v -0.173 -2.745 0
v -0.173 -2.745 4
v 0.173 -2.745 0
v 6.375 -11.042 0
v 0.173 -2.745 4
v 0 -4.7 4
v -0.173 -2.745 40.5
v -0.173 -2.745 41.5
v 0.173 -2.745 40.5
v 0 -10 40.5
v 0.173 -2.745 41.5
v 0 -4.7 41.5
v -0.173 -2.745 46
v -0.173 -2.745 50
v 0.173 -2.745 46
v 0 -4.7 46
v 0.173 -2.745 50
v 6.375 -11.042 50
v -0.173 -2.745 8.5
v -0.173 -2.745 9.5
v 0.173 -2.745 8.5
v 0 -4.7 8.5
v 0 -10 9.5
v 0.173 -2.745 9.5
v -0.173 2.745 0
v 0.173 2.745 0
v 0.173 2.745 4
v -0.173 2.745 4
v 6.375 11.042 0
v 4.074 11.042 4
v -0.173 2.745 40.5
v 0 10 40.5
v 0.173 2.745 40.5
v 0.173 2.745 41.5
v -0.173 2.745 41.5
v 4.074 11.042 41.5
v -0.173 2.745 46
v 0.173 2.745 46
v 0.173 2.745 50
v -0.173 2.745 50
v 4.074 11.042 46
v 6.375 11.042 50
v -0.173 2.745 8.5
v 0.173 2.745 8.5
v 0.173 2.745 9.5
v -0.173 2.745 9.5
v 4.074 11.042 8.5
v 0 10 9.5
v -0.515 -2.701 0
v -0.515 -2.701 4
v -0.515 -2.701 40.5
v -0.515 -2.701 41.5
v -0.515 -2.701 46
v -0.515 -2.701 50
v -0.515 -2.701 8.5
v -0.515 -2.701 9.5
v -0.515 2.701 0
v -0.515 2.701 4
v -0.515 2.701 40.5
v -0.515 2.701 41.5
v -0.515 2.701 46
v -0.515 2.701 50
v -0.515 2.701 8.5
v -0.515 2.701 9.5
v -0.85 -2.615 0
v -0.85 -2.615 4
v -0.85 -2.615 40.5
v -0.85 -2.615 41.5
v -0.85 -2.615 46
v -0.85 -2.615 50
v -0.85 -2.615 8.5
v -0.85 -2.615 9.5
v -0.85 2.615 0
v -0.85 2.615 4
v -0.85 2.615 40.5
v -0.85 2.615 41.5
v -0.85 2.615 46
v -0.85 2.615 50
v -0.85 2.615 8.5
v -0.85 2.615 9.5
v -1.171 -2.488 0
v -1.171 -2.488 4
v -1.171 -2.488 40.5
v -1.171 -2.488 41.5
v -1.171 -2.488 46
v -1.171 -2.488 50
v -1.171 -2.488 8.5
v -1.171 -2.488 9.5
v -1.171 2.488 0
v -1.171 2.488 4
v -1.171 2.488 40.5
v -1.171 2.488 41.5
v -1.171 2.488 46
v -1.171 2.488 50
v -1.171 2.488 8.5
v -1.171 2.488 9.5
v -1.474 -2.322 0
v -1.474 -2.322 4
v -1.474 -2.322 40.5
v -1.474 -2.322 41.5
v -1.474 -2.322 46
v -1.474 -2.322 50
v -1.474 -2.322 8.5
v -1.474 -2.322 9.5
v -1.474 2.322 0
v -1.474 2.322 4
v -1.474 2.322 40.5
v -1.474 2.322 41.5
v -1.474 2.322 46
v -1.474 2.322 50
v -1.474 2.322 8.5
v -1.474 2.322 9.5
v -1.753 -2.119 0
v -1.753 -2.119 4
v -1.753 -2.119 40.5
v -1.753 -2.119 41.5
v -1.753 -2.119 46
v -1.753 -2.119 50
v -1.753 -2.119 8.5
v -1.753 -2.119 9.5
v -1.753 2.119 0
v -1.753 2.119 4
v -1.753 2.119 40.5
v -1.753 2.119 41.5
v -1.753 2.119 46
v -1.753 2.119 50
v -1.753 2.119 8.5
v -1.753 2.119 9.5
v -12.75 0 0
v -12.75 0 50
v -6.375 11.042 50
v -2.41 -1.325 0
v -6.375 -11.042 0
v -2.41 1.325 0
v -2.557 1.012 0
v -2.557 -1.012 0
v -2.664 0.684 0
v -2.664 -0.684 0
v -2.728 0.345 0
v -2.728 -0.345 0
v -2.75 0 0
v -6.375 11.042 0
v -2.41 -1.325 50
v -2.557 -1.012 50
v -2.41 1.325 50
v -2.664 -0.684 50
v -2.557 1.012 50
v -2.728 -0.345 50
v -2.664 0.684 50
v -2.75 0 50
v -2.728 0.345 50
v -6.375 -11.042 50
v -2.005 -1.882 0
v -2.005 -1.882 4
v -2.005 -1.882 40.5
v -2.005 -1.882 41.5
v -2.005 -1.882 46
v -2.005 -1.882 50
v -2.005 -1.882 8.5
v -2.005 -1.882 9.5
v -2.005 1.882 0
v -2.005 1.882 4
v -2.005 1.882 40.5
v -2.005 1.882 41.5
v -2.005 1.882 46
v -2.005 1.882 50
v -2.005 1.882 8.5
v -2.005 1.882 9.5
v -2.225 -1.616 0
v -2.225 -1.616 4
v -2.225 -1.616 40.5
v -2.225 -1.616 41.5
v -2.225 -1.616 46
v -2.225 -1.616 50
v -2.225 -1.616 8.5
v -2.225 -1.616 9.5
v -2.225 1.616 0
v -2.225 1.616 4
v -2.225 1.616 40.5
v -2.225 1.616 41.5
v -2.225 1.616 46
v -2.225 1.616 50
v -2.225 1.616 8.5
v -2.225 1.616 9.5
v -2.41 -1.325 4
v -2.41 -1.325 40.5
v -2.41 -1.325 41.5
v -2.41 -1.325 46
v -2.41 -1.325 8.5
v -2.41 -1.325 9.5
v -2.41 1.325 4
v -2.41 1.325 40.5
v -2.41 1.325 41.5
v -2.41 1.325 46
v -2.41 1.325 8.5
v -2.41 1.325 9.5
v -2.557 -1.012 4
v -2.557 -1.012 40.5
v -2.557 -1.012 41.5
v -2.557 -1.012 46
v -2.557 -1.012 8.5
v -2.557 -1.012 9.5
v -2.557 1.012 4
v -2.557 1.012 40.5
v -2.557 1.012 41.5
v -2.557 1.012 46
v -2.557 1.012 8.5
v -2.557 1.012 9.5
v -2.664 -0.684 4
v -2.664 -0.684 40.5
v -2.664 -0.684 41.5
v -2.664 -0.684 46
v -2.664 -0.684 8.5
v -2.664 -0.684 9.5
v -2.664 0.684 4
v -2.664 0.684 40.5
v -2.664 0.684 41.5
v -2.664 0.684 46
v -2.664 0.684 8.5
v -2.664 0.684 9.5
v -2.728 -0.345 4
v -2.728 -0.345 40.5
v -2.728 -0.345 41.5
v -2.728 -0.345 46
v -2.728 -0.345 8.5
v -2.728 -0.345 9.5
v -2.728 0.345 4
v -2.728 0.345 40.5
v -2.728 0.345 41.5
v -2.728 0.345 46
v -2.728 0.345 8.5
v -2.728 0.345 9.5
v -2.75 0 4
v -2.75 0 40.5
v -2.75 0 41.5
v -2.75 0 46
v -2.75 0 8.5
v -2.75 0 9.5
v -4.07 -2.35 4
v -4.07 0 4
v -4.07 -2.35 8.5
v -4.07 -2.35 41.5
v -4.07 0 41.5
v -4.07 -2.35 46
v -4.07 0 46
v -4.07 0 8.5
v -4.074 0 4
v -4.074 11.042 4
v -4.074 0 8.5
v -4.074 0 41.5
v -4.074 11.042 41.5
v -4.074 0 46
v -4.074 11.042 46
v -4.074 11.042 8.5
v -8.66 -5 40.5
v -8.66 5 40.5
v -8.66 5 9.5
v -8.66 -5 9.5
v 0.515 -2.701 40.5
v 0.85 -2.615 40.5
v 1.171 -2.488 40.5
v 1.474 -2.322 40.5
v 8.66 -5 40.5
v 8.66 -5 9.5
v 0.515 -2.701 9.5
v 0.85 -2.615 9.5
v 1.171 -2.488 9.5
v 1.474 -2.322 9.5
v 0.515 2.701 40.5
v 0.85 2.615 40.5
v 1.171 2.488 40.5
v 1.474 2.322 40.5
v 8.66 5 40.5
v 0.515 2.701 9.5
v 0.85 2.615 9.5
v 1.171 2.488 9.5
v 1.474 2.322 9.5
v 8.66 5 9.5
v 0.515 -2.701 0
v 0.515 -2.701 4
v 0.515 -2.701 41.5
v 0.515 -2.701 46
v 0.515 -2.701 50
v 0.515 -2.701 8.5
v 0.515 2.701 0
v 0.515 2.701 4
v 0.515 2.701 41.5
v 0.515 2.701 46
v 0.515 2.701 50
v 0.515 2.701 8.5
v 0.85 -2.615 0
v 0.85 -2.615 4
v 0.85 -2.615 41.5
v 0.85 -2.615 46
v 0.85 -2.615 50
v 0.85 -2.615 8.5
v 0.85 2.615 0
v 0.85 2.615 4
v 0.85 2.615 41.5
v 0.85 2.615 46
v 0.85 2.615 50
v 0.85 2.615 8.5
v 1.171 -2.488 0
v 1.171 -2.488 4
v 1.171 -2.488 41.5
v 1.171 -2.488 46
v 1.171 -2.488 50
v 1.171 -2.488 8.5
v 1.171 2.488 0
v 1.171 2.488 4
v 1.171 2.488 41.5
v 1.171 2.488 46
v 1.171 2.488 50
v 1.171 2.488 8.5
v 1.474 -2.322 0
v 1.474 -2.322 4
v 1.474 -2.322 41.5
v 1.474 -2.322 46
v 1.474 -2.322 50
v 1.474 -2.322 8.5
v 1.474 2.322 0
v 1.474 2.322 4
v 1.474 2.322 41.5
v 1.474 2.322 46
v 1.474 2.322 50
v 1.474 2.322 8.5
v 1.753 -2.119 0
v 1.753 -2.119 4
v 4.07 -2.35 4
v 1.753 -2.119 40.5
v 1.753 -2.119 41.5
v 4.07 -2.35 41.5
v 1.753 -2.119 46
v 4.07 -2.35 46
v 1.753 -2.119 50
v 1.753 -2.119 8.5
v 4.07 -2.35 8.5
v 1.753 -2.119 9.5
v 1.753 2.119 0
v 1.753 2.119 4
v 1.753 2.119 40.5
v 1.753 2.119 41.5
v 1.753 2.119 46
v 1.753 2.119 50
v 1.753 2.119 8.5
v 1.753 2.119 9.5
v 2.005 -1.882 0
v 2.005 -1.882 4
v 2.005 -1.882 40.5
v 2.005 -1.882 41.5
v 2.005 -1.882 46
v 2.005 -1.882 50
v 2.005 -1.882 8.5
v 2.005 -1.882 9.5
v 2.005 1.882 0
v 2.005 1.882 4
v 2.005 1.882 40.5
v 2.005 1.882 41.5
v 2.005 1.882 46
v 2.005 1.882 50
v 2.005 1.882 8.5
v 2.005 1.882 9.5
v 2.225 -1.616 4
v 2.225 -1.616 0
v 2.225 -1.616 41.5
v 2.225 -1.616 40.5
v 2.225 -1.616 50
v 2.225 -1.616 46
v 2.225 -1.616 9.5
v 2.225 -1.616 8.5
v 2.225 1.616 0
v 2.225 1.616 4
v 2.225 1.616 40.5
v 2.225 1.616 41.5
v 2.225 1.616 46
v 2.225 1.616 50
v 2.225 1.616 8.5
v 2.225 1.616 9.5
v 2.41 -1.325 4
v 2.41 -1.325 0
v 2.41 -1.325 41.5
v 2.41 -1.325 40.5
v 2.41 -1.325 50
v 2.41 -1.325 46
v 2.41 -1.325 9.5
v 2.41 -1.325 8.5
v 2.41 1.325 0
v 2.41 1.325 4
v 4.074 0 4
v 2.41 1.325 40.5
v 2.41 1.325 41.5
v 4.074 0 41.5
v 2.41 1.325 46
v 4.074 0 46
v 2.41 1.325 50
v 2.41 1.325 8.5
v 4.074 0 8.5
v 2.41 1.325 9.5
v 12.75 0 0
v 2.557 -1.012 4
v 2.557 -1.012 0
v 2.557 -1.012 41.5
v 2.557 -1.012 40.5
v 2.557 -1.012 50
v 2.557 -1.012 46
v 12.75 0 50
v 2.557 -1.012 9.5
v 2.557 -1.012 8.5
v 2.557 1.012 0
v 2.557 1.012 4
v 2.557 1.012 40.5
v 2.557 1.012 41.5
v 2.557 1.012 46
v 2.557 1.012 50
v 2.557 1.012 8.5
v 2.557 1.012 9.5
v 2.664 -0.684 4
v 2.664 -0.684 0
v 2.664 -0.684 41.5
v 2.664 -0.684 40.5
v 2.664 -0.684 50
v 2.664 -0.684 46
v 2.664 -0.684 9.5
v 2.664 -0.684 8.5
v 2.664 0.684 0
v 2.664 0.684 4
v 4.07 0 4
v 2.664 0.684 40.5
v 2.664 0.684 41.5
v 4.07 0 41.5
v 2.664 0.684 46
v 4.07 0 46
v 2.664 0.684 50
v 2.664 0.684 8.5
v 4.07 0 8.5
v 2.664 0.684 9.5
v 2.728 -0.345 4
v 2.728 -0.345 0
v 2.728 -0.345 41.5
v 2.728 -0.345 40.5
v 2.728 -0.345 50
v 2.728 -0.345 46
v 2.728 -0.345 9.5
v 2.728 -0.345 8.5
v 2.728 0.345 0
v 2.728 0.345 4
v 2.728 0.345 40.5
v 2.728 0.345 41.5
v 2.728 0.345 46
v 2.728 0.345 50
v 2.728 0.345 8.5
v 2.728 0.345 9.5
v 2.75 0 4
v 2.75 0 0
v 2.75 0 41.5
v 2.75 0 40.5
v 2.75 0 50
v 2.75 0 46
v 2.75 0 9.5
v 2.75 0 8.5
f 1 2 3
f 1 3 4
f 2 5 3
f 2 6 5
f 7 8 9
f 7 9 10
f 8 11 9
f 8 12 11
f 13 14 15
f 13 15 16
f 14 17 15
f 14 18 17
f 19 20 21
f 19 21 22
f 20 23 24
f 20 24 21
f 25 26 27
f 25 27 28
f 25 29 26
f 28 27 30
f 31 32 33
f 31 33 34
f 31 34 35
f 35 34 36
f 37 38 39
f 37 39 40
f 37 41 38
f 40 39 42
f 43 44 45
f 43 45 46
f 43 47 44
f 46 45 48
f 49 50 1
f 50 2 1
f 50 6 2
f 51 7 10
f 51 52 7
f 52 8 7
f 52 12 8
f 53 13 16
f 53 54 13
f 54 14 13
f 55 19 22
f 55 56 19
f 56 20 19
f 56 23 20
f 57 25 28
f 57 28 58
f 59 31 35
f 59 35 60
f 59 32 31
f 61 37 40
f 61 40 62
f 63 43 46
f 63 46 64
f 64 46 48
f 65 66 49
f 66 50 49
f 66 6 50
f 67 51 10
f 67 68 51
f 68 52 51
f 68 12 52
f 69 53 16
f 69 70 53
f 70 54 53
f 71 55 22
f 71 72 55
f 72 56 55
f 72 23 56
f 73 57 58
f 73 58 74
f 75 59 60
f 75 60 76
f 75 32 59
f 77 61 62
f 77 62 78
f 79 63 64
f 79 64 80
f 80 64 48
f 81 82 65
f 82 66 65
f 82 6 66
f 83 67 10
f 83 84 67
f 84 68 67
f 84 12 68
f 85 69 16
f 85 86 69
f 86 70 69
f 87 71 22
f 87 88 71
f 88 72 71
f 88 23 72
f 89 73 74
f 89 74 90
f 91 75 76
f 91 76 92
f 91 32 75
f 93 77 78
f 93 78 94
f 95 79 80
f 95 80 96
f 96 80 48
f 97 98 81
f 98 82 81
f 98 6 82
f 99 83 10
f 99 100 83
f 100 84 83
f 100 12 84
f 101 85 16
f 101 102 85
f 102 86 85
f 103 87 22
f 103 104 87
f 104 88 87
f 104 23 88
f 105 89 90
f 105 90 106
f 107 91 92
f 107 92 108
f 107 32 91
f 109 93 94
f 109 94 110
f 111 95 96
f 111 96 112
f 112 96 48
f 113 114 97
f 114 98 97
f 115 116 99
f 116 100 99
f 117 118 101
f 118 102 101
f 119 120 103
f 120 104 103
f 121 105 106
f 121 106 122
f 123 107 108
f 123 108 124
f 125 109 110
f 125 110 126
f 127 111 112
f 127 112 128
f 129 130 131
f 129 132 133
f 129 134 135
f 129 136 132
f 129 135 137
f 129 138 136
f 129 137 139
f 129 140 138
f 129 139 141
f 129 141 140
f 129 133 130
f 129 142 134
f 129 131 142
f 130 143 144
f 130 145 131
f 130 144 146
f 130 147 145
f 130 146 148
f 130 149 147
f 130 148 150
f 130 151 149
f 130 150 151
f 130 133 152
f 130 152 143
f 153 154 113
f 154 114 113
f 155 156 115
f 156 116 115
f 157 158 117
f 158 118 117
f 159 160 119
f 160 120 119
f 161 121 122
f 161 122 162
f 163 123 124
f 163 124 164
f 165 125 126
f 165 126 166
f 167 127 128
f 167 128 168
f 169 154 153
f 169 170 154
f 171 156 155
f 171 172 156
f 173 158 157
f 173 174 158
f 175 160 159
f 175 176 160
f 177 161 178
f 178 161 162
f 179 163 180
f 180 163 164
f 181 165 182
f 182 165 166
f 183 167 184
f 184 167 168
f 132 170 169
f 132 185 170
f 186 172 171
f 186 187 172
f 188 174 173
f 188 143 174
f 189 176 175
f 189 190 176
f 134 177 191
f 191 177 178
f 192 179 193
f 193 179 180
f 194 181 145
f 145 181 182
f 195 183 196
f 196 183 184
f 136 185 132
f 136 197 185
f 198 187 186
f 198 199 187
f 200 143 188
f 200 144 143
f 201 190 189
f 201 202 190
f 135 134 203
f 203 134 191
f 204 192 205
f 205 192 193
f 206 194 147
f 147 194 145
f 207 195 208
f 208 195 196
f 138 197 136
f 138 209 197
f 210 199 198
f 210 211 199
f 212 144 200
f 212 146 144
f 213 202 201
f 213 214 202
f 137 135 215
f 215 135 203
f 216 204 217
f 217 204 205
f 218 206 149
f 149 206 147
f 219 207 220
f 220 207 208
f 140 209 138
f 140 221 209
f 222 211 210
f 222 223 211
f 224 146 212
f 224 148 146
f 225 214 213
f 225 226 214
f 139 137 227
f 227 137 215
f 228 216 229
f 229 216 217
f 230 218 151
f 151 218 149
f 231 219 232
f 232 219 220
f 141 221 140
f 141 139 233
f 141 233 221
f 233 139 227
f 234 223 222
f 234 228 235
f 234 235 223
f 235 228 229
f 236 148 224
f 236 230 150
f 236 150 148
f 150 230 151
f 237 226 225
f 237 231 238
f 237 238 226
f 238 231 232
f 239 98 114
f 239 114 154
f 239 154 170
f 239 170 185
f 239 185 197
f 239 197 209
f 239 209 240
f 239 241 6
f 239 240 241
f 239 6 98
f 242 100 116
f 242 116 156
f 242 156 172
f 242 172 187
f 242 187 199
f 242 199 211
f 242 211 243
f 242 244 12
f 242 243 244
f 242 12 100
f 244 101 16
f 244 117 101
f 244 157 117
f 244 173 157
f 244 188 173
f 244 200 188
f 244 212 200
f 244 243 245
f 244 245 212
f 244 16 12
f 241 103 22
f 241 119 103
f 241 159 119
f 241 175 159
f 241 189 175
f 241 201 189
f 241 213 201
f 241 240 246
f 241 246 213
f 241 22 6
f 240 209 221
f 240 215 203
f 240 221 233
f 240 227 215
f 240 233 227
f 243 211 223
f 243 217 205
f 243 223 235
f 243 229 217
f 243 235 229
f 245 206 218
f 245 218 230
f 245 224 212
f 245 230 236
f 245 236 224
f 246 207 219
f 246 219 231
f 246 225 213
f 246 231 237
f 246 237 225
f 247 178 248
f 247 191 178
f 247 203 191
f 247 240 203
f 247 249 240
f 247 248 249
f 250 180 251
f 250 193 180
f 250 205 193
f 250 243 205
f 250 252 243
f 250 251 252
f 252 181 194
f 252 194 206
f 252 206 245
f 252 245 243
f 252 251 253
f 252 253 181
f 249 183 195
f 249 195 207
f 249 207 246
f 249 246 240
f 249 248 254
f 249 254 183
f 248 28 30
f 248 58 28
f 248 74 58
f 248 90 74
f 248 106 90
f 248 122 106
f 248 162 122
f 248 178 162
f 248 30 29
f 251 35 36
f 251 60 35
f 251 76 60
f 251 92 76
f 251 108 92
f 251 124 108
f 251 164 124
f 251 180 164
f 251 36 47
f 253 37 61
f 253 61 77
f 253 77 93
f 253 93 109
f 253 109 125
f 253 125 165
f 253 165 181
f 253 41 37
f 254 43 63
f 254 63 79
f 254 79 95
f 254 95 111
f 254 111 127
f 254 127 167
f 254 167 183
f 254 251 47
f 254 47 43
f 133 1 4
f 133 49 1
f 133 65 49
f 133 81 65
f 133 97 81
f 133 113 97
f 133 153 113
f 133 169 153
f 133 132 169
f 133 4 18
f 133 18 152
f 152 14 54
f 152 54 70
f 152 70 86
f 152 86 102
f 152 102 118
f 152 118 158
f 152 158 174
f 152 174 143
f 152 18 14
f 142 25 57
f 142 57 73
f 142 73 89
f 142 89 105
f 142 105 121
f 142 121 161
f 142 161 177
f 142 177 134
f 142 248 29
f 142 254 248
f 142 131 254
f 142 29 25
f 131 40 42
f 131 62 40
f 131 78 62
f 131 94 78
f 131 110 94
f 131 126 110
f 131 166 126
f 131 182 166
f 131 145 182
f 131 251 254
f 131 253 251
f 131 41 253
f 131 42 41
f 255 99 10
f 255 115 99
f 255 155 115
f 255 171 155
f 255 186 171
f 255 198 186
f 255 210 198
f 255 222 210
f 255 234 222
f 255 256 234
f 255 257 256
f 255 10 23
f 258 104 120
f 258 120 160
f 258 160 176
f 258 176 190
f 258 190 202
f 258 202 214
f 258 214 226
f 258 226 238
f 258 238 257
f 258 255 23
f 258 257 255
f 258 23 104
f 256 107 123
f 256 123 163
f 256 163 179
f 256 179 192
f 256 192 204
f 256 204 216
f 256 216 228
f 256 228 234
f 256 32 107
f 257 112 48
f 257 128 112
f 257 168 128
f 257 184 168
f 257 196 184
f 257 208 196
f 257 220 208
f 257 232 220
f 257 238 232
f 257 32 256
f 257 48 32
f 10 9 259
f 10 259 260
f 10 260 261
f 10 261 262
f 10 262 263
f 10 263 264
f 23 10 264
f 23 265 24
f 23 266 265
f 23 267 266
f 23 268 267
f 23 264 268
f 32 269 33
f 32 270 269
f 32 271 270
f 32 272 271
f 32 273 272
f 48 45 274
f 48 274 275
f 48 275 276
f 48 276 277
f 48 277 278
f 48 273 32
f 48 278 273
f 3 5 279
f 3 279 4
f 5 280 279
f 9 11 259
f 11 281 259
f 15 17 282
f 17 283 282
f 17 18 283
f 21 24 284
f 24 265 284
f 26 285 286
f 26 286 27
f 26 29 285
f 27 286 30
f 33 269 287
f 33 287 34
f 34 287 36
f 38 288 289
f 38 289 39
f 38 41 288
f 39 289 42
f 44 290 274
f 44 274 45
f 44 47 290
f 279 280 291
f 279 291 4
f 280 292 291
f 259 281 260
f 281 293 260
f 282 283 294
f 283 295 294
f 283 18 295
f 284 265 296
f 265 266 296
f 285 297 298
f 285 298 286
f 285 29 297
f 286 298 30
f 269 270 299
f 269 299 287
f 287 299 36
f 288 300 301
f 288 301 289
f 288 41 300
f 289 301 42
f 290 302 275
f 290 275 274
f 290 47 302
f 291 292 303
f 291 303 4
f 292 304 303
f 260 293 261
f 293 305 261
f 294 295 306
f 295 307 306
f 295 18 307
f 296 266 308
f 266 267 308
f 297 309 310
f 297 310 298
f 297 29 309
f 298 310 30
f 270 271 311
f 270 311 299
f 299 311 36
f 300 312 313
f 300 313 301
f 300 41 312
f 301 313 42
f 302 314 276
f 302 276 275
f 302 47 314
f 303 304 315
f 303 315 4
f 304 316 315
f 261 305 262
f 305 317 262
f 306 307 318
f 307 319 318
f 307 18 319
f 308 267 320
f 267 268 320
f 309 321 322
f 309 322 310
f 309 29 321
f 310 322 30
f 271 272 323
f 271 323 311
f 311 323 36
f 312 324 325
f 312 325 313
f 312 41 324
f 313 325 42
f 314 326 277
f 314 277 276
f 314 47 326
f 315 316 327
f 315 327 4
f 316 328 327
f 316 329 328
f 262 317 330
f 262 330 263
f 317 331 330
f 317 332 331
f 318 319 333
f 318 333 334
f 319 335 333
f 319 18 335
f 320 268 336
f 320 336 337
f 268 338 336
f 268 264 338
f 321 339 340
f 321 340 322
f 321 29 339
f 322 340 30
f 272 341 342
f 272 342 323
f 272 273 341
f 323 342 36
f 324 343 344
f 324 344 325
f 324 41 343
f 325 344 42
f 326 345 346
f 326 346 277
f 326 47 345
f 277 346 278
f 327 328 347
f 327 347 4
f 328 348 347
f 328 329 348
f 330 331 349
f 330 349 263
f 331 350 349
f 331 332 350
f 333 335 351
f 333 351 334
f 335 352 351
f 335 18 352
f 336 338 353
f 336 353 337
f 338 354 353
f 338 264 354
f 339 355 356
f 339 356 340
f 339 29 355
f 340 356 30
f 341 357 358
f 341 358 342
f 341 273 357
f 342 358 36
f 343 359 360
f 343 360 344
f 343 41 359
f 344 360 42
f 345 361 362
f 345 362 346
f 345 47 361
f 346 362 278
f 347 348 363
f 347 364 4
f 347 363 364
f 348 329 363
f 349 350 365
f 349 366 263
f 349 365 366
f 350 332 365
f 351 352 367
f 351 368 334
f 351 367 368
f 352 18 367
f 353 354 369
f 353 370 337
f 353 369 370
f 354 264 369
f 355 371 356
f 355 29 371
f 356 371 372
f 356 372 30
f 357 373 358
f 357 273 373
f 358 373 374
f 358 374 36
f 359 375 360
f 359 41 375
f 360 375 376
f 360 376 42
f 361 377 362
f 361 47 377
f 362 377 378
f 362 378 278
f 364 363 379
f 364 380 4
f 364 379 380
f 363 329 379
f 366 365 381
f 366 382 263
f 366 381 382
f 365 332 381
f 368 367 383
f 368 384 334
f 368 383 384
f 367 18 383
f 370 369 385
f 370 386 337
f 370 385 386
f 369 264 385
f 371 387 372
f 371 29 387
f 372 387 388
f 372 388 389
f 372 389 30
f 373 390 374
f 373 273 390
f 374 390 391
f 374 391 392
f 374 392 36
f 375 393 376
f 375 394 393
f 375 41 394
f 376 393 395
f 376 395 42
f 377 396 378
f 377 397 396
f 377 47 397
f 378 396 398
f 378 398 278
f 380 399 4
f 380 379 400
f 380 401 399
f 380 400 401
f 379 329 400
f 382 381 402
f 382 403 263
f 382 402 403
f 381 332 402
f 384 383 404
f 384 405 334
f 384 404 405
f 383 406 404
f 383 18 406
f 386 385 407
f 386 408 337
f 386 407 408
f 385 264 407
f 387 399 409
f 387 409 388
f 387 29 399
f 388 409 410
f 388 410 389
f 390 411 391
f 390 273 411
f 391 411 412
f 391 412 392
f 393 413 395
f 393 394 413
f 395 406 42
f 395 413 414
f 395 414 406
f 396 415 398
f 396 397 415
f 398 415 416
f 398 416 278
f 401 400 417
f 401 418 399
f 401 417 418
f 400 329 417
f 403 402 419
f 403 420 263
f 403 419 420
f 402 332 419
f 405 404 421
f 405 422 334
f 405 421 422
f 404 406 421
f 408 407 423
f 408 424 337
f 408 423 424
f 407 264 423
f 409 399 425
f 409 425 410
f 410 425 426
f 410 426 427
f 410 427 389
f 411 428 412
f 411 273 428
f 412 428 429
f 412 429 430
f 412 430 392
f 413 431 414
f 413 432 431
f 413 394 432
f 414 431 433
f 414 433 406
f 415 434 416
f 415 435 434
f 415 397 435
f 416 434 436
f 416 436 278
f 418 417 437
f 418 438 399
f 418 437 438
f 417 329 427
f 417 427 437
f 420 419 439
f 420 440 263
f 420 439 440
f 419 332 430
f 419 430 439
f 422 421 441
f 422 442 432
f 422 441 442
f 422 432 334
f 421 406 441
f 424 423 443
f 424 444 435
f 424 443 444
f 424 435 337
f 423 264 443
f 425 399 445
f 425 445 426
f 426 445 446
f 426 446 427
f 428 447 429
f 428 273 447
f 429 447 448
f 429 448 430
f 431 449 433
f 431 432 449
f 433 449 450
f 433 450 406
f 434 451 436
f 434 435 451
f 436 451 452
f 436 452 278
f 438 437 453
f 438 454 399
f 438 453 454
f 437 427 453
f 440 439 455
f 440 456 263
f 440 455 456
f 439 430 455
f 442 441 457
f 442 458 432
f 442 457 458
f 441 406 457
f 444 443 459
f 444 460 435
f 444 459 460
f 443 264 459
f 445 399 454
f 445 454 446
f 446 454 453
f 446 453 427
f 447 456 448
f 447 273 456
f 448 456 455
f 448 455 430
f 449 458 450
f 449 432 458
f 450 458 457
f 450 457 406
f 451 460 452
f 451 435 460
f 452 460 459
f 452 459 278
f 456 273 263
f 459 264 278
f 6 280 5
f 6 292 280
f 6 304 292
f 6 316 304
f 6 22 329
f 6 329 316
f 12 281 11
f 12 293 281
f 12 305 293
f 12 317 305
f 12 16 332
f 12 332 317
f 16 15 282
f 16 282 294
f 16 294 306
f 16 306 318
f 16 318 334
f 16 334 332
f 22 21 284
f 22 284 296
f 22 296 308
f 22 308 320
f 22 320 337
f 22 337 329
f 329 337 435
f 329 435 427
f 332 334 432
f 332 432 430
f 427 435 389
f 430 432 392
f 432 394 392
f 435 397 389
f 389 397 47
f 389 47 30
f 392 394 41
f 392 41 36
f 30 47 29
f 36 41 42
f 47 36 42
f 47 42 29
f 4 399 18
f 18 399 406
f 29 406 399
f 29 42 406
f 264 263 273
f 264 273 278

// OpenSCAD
// file: ../parameters.scad
maximum_printable_size = 150;

layer_thickness = 0.3;
global_clearance = 0.5;

platform_base_diameter = 400; // Průměr ukotvení válců spodní platformy
platform_base_thickness = 20;
platform_cylinder_medium_length = 250;  // délka pneumatického válce s pístem vysunutým do poloviny rozsahu
platform_base_cylinder_spacing = 38;    //rozestupy spodního a horního ukotvení válců.
platform_top_cylinder_spacing = 30;
platform_top_diameter = 150;   // Průměr horní základny (vdálenost od středu základny do středu kulového kloubu ke kterému je uchycen pneumatický válec)


// screw length step - minimum difference in length between two types of screws
basic_screw_length = 5;


//Screw diameter and nut for M10 [mm]
M10_screw_diameter = 10.4;
M10_head_height = 10;
M10_head_diameter = 16+0.5;
M10_nut_height = 10.5;
M10_nut_diameter = 25.5;
M10_nut_pocket = 22.3;

//Screw diameter for M8 [mm]
M8_screw_diameter = 8.6;
M8_head_height = 8;
M8_head_diameter = 13.5;
M8_nut_height = 7.5;
M8_nut_diameter = 14.4 + 0.5;
M8_nut_pocket = 13 + 0.5;

//Screw diameter and nut for M6 [mm]
M6_screw_diameter=6.5;
M6_head_diameter = 10+0.5;
M6_head_height = 6;
M6_nut_height = 4.9;
M6_nut_diameter = 11.8;
M6_nut_pocket = 10.4;
M6_square_nut_height = 3;
M6_square_nut_diameter = 10;

//Screw diameter and nut for M5 [mm]
M5_screw_diameter=5.5;
M5_head_height = 5;
M5_head_diameter = 13+0.5;
M5_nut_height = 4.5;
M5_nut_diameter = 9.4;
M5_nut_pocket = 8.4;

//Screw diameter and nut for M4 [mm]
M4_screw_diameter=4.5;
M4_screw_head_height = 4;
M4_nut_height = 3.2;
M4_nut_diameter = 8.4;
M4_nut_pocket = 7.5;

//Screw diameter and nut for M3 [mm]
M3_screw_diameter = 3.2;
M3_nut_height = 2.7;
M3_nut_diameter = 6.6;
M3_screw_head_height = 3;

//Screw diameter and nut for M2,5 [mm]
M2_5_screw_diameter = 2.7;
M2_5_nut_height = 2.3;
M2_5_nut_diameter = 6;
M2_5_nut_pocket = 5.5;

// kulove lozisko

bearing_efsm_08_h = 33+1;
bearing_efsm_08_m = 22;
bearing_efsm_08_db = 18;
bearing_efsm_08_ag = 10.5;
bearing_efsm_08_n = M4_screw_diameter;
bearing_efsm_08_a1 = 5.5;
bearing_efsm_08_d = 8.25;
bearing_efsm_08_B = 8; // ball height

bearing_efsm_10_h = 38+1;
bearing_efsm_10_m = 26;
bearing_efsm_10_db = 21.9;
bearing_efsm_10_ag = 12+0.2;
bearing_efsm_10_n = M5_screw_diameter;
bearing_efsm_10_a1 = 6.5;
bearing_efsm_10_d = 10.25;


bearing_efsm_12_width = 40+1;
bearing_efsm_12_h = bearing_efsm_12_width;
bearing_efsm_12_boltd = 28/2; // polovina vzdalenosti mezi srouby
bearing_efsm_12_m = bearing_efsm_12_boltd*2;
bearing_efsm_12_db = 25;
bearing_efsm_12_ag = 13;
bearing_efsm_12_a1 = 7;
bearing_efsm_12_n = M5_screw_diameter;
bearing_efsm_12_d = 12.15;
bearing_efsm_12_B = 10; // ball height
bearing_efsm_space = 1;

bearing_efsm_17_width = 54+1;
bearing_efsm_17_h = bearing_efsm_17_width;
bearing_efsm_17_boltd = 38/2; // polovina vzdalenosti mezi srouby
bearing_efsm_17_m = bearing_efsm_17_boltd*2;
bearing_efsm_17_db = 35;
bearing_efsm_17_ag = 18;
bearing_efsm_17_n = M6_screw_diameter;
bearing_efsm_17_a1 = 10;
bearing_efsm_17_B = 17; // ball height

//limcove lozisko
bearing_EFOM_10_L=26; //celkova sirka zakladny
bearing_EFOM_10_d1=10.3;//diametr otvoru real=10 mm
bearing_EFOM_10_dB=22;//diametr vystupku pro ulozeni lozika
bearing_EFOM_10_H=52;//celková delka zakladny
bearing_EFOM_10_J=36;// hole pitch
bearing_EFOM_10_A1=6.5;//vyska pouzdra
bearing_EFOM_10_Ag=12;//celkova vyska
bearing_EFOM_10_N1=5;//sirka otvoru pro sroub
bearing_EFOM_10_N2=8;//delka otvoru pro sroub
bearing_EFOM_10_m=36;//roztec der pro sroub
bearing_EFOM_10_h=9;//vyska lozika


608_bearing_outer_diameter = 22.3;
608_bearing_inner_diameter = 16;
608_bearing_thickness = 7.1;


// 20 KG servo parameters

servo_20kg_axis_offset = 9.375; // jak je osa mimo stredu
servo_20kg_body_x = 42;
servo_20kg_body_y = 21;
servo_20kg_body_z = 40;
servo_20kg_thread_x = 49/2;
servo_20kg_thread_y = 10/2;
servo_20kg_body_below = 10; // jak hluboko je tělo serva pod drzaky na srouby
servo_20kg_below = 25.8; // jak hluboko je páka serva pod drzaky na srouby

servo_20kg_bolt_d = 2.5+0.3;
servo_20kg_nut_d = 5+0.3;


//strain gauge
strain_gauge_width = 12.7;
strain_gauge_length = 75.1;
strain_gauge_screw_distance = 10;

//ALU profile
ALU_profile_width = 30.3;
ALU_profile_holder_wall_thickness = 3;
ALU_profile_groove_width = 8;

//pillow block bearing
//https://www.igus.eu/product/372
//Part no. KSTM-08
KSTM08_screws_distance = 33;         //m
KSTM08_screws_holes_diameter = 4.5;  //d2
KSTM08_flange_thickness = 6;         //h3
KSTM08_case_width = 9;               //C1
KSTM08_case_length = 47;             //a
KSTM08_ball_width = 12;              //B


//ložiska pro malý rotor
bearing_outer_diameter = 10.2;    // Rozměr B1 v nákresu s přídavkem na toleranci otvoru
bearing_thickness = 4;        // Rozměr B2 v nákresu
//bearing_shaft_length = 19.5;    // Rozměr B3 v nákresu, Originalni hodnota 19.5
bearing_shaft_length = 20;    // Rozměr B3 v nákresu
// main file
include <../parameters.scad>
//minimal length_total is 18

//variable

888_1001(50,4,20);
module 888_1001(length_total,nut_indentation,inner_diameter){
    difference(){
        translate([0,0,0])
            cylinder(h = length_total, d = M10_nut_diameter, $fn = 6);

    //nut pocket
        rotate([0,0,30]){
            translate([0,0,length_total-nut_indentation-M5_nut_height])
                cylinder(h = M5_nut_height, d = M5_nut_diameter, $fn = 6);

            translate([0,0,nut_indentation])
                cylinder(h = M5_nut_height, d = M5_nut_diameter, $fn = 6);
            }

    //insert nut hole
            translate([0,(M10_nut_diameter/4),nut_indentation+M5_nut_height/2])
                cube([M5_nut_diameter-1.252,M10_nut_diameter/2,M5_nut_height],center=true);

            translate([0,(M10_nut_diameter/4),length_total-nut_indentation-M5_nut_height/2])
                cube([M5_nut_diameter-1.252,M10_nut_diameter/2,M5_nut_height],center=true);

    //screw hole
            translate([0,0,0])
                cylinder(h = length_total, d = M5_screw_diameter, $fn = 50);

    //inner diameter
        rotate([0,0,30]){
            translate([0,0,nut_indentation+M5_nut_height+1])
                cylinder(h = length_total-nut_indentation*2-M5_nut_height*2-2, d = inner_diameter , $fn = 6);
        }
    }
}
